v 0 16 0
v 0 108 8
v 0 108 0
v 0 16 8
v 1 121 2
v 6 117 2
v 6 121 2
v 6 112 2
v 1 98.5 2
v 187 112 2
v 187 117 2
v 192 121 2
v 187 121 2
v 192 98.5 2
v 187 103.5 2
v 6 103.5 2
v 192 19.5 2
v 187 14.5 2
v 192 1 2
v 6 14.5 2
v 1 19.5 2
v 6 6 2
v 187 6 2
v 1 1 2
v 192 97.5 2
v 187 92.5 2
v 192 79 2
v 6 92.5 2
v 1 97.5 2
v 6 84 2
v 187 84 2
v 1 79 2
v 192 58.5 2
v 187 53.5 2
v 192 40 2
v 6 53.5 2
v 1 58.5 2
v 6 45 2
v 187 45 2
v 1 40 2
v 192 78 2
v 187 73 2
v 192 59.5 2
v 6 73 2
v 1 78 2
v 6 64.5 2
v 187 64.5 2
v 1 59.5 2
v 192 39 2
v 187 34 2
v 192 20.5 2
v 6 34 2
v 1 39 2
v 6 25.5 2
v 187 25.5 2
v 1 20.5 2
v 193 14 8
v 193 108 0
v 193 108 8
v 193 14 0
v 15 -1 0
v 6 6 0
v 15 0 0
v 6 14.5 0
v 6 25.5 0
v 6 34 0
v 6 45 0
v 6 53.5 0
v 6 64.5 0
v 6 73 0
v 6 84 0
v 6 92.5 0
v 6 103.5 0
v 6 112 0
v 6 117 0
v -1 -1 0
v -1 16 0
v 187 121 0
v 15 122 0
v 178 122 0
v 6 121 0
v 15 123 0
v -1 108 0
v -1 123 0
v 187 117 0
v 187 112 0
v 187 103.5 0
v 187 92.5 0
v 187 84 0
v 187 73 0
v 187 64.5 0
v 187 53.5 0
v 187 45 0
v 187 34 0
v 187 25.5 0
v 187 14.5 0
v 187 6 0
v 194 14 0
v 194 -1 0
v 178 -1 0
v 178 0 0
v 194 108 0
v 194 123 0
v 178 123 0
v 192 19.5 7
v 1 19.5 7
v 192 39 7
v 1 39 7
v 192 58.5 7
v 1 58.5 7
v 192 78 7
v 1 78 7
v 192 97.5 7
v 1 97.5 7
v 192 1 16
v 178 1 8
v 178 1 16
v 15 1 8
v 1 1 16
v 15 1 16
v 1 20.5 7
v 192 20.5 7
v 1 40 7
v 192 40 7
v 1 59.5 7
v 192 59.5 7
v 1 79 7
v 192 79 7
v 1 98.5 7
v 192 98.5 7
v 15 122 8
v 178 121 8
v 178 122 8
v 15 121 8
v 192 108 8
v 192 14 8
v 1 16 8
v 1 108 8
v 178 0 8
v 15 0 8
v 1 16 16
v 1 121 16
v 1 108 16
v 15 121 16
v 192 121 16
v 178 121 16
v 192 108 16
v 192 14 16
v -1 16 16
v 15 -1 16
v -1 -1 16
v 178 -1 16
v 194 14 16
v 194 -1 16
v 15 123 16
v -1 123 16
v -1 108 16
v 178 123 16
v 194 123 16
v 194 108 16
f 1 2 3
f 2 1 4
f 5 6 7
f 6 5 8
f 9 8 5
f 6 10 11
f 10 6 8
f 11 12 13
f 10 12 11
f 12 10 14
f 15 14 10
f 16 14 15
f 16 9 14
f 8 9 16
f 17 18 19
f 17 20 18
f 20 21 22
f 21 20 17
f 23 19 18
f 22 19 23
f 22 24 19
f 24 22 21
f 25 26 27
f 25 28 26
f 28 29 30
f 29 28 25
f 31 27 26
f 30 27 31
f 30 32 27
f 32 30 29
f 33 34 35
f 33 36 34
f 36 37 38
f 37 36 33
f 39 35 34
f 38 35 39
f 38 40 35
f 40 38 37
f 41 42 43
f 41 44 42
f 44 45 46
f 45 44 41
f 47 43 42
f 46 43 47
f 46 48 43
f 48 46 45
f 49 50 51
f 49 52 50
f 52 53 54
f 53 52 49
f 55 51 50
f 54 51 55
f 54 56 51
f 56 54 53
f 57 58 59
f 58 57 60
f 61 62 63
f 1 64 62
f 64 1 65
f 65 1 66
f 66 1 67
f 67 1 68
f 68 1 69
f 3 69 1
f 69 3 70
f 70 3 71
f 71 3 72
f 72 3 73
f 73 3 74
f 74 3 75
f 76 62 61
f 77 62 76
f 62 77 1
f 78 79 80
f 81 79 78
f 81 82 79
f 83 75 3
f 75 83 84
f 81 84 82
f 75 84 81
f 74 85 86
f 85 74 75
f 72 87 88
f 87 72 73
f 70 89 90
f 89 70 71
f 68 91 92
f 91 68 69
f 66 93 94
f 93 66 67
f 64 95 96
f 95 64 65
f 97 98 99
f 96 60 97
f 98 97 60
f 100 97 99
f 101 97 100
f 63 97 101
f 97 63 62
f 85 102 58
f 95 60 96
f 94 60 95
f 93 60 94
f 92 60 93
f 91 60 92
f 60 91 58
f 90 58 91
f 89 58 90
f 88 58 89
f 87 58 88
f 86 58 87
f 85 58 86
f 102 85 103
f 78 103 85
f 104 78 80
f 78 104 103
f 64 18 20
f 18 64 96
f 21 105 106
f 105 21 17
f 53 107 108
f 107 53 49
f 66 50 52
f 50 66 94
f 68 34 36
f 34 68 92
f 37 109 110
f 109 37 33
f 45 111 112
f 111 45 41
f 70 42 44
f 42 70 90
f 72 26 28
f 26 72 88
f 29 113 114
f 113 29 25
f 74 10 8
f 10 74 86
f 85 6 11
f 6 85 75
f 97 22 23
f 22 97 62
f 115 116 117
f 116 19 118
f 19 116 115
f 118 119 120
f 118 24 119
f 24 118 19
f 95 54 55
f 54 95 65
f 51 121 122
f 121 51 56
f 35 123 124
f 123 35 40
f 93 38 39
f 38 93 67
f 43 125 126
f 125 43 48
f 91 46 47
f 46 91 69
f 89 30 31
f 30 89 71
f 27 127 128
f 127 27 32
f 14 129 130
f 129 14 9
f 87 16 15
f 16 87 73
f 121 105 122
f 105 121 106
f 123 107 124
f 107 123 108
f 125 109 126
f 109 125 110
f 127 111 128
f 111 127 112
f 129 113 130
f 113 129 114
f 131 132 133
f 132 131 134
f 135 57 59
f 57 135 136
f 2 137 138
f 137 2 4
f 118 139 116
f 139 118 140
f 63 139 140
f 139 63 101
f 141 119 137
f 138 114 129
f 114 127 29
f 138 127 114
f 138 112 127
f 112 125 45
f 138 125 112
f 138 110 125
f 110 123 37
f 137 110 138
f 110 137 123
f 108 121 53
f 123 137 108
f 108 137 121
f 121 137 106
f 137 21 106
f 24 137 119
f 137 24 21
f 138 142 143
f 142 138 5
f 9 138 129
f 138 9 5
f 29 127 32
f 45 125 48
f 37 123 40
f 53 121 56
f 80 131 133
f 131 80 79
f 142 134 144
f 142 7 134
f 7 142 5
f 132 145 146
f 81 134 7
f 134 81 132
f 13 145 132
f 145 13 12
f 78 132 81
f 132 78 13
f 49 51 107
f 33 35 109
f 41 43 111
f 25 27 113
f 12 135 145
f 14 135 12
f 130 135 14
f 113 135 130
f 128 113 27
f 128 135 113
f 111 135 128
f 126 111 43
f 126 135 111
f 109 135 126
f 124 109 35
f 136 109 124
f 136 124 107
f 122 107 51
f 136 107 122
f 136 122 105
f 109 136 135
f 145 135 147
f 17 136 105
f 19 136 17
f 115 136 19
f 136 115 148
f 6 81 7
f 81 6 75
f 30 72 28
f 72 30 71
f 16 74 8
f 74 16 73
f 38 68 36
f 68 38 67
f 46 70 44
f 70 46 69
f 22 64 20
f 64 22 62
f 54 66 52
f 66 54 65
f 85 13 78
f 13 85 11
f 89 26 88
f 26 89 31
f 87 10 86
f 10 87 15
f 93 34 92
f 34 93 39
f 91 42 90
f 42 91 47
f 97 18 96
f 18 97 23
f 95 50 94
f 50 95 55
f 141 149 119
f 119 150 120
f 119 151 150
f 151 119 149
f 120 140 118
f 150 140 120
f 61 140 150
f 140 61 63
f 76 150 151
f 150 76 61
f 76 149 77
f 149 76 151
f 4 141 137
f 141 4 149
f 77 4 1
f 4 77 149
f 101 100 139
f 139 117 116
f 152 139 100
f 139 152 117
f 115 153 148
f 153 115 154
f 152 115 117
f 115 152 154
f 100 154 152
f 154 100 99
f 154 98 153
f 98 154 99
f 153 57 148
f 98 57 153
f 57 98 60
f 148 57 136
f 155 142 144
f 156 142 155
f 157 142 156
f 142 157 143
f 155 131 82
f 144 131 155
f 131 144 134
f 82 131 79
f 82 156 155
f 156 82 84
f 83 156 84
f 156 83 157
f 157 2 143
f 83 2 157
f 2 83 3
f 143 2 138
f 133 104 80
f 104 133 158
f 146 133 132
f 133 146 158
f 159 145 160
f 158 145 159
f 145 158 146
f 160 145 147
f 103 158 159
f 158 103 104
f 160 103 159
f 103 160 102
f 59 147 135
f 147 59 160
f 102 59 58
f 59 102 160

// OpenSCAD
// 鍵帽儲存托盤產生器
// Keycap Storage Tray Generator
include <KSTG_Base.SCAD>

// 可複製此樣板檔依照自己需求另存新檔
// 以便以檔案區隔樣式

// 存放盒子的大小:
BoxSize_L1 = 193; //長度(水平)
BoxSize_W1 = 122; //寬度(垂直)
BoxSize_H = 55;  //高度

// 外圍厚度
Tray_Fence_T = 1;  //厚度
Tray_Fence_H = 6;  //高度

// 分隔片
Tray_Separator_T = 1;  //厚度
Tray_Separator_H = 5;  //高度 要高於上一層與鍵帽間的間隙
Tray_Separator_L = 3;  //短隔板長度

// 分隔片(長寬區分/尚未使用)
//Tray_Separator_T_L = 1;  //長(水平) 厚度
//Tray_Separator_T_W = 2;  //寬(垂直) 厚度
//Tray_Separator_H_L = 5;  //長(水平) 高度
//Tray_Separator_H_W = 5;  //寬(垂直) 高度

// 底板
Tray_Bottom_L = 5; //底部分隔板至到底板寬度
Tray_Bottom_T = 2; //底板厚度

//常見鍵帽高度表:
//SA  16.5mm  Cherry 9.4mm
//OEM 11.9mm  TAI HAO 14.8
//XDA 9.1mm   DSA 7.6
//ADA 8mm (18.2x18.2mm )
//適用於 Tray_Column_H 參數

//四角落立柱高度
//堆疊托盤時可墊高避免直接碰觸鍵帽
Tray_Column_H = 14; // 高度 可依照鍵帽高度調整
Tray_Column_T = 2;  // 厚度
Tray_Column_L = 15; // 長面長度
Tray_Column_W = 15; // 寬面長度 

//放置鍵帽空間
Keycaps_Space_L = 18.5;
Keycaps_Space_W = 18.5;

//垂直分隔片樣式
// 0 不需要
// 1 全部
// 2 短隔板無底板
// 3 短隔板有底板

Tray_VS_Type = 0;

//多餘空間處理方式
//How to use the extra space
// 0 不處理，照原本盒子大小產生外圍
// 1 不處理，僅列印鍵帽所需空間
// 2 角落填補剩餘空間
ExtraSpaceUse = 0;

//是否顯示文字標記 0關/1開
ShowText = 1 ;

//清除分隔片與底板
//請參考F5後帶出的座標數值
//例如：
// Tray_Separator_Cut_L=[
// [1,1],[2,1],[3,1],[1,2]
// ];

// 長(水平)分隔片 紅色
Tray_Separator_Cut_L=[
];
// 寬(垂直)分隔片 藍色 -vnm,     
Tray_Separator_Cut_W=[
];
// 交錯點 綠色 長寬分隔片交會處
// 須手動清除交錯點
Tray_Separator_Cut_C=[
];
// 長(水平)底板 紅色
Tray_Separator_Cut_LB=[
];
// 寬(垂直)底板 藍色
Tray_Separator_Cut_WB=[
];
